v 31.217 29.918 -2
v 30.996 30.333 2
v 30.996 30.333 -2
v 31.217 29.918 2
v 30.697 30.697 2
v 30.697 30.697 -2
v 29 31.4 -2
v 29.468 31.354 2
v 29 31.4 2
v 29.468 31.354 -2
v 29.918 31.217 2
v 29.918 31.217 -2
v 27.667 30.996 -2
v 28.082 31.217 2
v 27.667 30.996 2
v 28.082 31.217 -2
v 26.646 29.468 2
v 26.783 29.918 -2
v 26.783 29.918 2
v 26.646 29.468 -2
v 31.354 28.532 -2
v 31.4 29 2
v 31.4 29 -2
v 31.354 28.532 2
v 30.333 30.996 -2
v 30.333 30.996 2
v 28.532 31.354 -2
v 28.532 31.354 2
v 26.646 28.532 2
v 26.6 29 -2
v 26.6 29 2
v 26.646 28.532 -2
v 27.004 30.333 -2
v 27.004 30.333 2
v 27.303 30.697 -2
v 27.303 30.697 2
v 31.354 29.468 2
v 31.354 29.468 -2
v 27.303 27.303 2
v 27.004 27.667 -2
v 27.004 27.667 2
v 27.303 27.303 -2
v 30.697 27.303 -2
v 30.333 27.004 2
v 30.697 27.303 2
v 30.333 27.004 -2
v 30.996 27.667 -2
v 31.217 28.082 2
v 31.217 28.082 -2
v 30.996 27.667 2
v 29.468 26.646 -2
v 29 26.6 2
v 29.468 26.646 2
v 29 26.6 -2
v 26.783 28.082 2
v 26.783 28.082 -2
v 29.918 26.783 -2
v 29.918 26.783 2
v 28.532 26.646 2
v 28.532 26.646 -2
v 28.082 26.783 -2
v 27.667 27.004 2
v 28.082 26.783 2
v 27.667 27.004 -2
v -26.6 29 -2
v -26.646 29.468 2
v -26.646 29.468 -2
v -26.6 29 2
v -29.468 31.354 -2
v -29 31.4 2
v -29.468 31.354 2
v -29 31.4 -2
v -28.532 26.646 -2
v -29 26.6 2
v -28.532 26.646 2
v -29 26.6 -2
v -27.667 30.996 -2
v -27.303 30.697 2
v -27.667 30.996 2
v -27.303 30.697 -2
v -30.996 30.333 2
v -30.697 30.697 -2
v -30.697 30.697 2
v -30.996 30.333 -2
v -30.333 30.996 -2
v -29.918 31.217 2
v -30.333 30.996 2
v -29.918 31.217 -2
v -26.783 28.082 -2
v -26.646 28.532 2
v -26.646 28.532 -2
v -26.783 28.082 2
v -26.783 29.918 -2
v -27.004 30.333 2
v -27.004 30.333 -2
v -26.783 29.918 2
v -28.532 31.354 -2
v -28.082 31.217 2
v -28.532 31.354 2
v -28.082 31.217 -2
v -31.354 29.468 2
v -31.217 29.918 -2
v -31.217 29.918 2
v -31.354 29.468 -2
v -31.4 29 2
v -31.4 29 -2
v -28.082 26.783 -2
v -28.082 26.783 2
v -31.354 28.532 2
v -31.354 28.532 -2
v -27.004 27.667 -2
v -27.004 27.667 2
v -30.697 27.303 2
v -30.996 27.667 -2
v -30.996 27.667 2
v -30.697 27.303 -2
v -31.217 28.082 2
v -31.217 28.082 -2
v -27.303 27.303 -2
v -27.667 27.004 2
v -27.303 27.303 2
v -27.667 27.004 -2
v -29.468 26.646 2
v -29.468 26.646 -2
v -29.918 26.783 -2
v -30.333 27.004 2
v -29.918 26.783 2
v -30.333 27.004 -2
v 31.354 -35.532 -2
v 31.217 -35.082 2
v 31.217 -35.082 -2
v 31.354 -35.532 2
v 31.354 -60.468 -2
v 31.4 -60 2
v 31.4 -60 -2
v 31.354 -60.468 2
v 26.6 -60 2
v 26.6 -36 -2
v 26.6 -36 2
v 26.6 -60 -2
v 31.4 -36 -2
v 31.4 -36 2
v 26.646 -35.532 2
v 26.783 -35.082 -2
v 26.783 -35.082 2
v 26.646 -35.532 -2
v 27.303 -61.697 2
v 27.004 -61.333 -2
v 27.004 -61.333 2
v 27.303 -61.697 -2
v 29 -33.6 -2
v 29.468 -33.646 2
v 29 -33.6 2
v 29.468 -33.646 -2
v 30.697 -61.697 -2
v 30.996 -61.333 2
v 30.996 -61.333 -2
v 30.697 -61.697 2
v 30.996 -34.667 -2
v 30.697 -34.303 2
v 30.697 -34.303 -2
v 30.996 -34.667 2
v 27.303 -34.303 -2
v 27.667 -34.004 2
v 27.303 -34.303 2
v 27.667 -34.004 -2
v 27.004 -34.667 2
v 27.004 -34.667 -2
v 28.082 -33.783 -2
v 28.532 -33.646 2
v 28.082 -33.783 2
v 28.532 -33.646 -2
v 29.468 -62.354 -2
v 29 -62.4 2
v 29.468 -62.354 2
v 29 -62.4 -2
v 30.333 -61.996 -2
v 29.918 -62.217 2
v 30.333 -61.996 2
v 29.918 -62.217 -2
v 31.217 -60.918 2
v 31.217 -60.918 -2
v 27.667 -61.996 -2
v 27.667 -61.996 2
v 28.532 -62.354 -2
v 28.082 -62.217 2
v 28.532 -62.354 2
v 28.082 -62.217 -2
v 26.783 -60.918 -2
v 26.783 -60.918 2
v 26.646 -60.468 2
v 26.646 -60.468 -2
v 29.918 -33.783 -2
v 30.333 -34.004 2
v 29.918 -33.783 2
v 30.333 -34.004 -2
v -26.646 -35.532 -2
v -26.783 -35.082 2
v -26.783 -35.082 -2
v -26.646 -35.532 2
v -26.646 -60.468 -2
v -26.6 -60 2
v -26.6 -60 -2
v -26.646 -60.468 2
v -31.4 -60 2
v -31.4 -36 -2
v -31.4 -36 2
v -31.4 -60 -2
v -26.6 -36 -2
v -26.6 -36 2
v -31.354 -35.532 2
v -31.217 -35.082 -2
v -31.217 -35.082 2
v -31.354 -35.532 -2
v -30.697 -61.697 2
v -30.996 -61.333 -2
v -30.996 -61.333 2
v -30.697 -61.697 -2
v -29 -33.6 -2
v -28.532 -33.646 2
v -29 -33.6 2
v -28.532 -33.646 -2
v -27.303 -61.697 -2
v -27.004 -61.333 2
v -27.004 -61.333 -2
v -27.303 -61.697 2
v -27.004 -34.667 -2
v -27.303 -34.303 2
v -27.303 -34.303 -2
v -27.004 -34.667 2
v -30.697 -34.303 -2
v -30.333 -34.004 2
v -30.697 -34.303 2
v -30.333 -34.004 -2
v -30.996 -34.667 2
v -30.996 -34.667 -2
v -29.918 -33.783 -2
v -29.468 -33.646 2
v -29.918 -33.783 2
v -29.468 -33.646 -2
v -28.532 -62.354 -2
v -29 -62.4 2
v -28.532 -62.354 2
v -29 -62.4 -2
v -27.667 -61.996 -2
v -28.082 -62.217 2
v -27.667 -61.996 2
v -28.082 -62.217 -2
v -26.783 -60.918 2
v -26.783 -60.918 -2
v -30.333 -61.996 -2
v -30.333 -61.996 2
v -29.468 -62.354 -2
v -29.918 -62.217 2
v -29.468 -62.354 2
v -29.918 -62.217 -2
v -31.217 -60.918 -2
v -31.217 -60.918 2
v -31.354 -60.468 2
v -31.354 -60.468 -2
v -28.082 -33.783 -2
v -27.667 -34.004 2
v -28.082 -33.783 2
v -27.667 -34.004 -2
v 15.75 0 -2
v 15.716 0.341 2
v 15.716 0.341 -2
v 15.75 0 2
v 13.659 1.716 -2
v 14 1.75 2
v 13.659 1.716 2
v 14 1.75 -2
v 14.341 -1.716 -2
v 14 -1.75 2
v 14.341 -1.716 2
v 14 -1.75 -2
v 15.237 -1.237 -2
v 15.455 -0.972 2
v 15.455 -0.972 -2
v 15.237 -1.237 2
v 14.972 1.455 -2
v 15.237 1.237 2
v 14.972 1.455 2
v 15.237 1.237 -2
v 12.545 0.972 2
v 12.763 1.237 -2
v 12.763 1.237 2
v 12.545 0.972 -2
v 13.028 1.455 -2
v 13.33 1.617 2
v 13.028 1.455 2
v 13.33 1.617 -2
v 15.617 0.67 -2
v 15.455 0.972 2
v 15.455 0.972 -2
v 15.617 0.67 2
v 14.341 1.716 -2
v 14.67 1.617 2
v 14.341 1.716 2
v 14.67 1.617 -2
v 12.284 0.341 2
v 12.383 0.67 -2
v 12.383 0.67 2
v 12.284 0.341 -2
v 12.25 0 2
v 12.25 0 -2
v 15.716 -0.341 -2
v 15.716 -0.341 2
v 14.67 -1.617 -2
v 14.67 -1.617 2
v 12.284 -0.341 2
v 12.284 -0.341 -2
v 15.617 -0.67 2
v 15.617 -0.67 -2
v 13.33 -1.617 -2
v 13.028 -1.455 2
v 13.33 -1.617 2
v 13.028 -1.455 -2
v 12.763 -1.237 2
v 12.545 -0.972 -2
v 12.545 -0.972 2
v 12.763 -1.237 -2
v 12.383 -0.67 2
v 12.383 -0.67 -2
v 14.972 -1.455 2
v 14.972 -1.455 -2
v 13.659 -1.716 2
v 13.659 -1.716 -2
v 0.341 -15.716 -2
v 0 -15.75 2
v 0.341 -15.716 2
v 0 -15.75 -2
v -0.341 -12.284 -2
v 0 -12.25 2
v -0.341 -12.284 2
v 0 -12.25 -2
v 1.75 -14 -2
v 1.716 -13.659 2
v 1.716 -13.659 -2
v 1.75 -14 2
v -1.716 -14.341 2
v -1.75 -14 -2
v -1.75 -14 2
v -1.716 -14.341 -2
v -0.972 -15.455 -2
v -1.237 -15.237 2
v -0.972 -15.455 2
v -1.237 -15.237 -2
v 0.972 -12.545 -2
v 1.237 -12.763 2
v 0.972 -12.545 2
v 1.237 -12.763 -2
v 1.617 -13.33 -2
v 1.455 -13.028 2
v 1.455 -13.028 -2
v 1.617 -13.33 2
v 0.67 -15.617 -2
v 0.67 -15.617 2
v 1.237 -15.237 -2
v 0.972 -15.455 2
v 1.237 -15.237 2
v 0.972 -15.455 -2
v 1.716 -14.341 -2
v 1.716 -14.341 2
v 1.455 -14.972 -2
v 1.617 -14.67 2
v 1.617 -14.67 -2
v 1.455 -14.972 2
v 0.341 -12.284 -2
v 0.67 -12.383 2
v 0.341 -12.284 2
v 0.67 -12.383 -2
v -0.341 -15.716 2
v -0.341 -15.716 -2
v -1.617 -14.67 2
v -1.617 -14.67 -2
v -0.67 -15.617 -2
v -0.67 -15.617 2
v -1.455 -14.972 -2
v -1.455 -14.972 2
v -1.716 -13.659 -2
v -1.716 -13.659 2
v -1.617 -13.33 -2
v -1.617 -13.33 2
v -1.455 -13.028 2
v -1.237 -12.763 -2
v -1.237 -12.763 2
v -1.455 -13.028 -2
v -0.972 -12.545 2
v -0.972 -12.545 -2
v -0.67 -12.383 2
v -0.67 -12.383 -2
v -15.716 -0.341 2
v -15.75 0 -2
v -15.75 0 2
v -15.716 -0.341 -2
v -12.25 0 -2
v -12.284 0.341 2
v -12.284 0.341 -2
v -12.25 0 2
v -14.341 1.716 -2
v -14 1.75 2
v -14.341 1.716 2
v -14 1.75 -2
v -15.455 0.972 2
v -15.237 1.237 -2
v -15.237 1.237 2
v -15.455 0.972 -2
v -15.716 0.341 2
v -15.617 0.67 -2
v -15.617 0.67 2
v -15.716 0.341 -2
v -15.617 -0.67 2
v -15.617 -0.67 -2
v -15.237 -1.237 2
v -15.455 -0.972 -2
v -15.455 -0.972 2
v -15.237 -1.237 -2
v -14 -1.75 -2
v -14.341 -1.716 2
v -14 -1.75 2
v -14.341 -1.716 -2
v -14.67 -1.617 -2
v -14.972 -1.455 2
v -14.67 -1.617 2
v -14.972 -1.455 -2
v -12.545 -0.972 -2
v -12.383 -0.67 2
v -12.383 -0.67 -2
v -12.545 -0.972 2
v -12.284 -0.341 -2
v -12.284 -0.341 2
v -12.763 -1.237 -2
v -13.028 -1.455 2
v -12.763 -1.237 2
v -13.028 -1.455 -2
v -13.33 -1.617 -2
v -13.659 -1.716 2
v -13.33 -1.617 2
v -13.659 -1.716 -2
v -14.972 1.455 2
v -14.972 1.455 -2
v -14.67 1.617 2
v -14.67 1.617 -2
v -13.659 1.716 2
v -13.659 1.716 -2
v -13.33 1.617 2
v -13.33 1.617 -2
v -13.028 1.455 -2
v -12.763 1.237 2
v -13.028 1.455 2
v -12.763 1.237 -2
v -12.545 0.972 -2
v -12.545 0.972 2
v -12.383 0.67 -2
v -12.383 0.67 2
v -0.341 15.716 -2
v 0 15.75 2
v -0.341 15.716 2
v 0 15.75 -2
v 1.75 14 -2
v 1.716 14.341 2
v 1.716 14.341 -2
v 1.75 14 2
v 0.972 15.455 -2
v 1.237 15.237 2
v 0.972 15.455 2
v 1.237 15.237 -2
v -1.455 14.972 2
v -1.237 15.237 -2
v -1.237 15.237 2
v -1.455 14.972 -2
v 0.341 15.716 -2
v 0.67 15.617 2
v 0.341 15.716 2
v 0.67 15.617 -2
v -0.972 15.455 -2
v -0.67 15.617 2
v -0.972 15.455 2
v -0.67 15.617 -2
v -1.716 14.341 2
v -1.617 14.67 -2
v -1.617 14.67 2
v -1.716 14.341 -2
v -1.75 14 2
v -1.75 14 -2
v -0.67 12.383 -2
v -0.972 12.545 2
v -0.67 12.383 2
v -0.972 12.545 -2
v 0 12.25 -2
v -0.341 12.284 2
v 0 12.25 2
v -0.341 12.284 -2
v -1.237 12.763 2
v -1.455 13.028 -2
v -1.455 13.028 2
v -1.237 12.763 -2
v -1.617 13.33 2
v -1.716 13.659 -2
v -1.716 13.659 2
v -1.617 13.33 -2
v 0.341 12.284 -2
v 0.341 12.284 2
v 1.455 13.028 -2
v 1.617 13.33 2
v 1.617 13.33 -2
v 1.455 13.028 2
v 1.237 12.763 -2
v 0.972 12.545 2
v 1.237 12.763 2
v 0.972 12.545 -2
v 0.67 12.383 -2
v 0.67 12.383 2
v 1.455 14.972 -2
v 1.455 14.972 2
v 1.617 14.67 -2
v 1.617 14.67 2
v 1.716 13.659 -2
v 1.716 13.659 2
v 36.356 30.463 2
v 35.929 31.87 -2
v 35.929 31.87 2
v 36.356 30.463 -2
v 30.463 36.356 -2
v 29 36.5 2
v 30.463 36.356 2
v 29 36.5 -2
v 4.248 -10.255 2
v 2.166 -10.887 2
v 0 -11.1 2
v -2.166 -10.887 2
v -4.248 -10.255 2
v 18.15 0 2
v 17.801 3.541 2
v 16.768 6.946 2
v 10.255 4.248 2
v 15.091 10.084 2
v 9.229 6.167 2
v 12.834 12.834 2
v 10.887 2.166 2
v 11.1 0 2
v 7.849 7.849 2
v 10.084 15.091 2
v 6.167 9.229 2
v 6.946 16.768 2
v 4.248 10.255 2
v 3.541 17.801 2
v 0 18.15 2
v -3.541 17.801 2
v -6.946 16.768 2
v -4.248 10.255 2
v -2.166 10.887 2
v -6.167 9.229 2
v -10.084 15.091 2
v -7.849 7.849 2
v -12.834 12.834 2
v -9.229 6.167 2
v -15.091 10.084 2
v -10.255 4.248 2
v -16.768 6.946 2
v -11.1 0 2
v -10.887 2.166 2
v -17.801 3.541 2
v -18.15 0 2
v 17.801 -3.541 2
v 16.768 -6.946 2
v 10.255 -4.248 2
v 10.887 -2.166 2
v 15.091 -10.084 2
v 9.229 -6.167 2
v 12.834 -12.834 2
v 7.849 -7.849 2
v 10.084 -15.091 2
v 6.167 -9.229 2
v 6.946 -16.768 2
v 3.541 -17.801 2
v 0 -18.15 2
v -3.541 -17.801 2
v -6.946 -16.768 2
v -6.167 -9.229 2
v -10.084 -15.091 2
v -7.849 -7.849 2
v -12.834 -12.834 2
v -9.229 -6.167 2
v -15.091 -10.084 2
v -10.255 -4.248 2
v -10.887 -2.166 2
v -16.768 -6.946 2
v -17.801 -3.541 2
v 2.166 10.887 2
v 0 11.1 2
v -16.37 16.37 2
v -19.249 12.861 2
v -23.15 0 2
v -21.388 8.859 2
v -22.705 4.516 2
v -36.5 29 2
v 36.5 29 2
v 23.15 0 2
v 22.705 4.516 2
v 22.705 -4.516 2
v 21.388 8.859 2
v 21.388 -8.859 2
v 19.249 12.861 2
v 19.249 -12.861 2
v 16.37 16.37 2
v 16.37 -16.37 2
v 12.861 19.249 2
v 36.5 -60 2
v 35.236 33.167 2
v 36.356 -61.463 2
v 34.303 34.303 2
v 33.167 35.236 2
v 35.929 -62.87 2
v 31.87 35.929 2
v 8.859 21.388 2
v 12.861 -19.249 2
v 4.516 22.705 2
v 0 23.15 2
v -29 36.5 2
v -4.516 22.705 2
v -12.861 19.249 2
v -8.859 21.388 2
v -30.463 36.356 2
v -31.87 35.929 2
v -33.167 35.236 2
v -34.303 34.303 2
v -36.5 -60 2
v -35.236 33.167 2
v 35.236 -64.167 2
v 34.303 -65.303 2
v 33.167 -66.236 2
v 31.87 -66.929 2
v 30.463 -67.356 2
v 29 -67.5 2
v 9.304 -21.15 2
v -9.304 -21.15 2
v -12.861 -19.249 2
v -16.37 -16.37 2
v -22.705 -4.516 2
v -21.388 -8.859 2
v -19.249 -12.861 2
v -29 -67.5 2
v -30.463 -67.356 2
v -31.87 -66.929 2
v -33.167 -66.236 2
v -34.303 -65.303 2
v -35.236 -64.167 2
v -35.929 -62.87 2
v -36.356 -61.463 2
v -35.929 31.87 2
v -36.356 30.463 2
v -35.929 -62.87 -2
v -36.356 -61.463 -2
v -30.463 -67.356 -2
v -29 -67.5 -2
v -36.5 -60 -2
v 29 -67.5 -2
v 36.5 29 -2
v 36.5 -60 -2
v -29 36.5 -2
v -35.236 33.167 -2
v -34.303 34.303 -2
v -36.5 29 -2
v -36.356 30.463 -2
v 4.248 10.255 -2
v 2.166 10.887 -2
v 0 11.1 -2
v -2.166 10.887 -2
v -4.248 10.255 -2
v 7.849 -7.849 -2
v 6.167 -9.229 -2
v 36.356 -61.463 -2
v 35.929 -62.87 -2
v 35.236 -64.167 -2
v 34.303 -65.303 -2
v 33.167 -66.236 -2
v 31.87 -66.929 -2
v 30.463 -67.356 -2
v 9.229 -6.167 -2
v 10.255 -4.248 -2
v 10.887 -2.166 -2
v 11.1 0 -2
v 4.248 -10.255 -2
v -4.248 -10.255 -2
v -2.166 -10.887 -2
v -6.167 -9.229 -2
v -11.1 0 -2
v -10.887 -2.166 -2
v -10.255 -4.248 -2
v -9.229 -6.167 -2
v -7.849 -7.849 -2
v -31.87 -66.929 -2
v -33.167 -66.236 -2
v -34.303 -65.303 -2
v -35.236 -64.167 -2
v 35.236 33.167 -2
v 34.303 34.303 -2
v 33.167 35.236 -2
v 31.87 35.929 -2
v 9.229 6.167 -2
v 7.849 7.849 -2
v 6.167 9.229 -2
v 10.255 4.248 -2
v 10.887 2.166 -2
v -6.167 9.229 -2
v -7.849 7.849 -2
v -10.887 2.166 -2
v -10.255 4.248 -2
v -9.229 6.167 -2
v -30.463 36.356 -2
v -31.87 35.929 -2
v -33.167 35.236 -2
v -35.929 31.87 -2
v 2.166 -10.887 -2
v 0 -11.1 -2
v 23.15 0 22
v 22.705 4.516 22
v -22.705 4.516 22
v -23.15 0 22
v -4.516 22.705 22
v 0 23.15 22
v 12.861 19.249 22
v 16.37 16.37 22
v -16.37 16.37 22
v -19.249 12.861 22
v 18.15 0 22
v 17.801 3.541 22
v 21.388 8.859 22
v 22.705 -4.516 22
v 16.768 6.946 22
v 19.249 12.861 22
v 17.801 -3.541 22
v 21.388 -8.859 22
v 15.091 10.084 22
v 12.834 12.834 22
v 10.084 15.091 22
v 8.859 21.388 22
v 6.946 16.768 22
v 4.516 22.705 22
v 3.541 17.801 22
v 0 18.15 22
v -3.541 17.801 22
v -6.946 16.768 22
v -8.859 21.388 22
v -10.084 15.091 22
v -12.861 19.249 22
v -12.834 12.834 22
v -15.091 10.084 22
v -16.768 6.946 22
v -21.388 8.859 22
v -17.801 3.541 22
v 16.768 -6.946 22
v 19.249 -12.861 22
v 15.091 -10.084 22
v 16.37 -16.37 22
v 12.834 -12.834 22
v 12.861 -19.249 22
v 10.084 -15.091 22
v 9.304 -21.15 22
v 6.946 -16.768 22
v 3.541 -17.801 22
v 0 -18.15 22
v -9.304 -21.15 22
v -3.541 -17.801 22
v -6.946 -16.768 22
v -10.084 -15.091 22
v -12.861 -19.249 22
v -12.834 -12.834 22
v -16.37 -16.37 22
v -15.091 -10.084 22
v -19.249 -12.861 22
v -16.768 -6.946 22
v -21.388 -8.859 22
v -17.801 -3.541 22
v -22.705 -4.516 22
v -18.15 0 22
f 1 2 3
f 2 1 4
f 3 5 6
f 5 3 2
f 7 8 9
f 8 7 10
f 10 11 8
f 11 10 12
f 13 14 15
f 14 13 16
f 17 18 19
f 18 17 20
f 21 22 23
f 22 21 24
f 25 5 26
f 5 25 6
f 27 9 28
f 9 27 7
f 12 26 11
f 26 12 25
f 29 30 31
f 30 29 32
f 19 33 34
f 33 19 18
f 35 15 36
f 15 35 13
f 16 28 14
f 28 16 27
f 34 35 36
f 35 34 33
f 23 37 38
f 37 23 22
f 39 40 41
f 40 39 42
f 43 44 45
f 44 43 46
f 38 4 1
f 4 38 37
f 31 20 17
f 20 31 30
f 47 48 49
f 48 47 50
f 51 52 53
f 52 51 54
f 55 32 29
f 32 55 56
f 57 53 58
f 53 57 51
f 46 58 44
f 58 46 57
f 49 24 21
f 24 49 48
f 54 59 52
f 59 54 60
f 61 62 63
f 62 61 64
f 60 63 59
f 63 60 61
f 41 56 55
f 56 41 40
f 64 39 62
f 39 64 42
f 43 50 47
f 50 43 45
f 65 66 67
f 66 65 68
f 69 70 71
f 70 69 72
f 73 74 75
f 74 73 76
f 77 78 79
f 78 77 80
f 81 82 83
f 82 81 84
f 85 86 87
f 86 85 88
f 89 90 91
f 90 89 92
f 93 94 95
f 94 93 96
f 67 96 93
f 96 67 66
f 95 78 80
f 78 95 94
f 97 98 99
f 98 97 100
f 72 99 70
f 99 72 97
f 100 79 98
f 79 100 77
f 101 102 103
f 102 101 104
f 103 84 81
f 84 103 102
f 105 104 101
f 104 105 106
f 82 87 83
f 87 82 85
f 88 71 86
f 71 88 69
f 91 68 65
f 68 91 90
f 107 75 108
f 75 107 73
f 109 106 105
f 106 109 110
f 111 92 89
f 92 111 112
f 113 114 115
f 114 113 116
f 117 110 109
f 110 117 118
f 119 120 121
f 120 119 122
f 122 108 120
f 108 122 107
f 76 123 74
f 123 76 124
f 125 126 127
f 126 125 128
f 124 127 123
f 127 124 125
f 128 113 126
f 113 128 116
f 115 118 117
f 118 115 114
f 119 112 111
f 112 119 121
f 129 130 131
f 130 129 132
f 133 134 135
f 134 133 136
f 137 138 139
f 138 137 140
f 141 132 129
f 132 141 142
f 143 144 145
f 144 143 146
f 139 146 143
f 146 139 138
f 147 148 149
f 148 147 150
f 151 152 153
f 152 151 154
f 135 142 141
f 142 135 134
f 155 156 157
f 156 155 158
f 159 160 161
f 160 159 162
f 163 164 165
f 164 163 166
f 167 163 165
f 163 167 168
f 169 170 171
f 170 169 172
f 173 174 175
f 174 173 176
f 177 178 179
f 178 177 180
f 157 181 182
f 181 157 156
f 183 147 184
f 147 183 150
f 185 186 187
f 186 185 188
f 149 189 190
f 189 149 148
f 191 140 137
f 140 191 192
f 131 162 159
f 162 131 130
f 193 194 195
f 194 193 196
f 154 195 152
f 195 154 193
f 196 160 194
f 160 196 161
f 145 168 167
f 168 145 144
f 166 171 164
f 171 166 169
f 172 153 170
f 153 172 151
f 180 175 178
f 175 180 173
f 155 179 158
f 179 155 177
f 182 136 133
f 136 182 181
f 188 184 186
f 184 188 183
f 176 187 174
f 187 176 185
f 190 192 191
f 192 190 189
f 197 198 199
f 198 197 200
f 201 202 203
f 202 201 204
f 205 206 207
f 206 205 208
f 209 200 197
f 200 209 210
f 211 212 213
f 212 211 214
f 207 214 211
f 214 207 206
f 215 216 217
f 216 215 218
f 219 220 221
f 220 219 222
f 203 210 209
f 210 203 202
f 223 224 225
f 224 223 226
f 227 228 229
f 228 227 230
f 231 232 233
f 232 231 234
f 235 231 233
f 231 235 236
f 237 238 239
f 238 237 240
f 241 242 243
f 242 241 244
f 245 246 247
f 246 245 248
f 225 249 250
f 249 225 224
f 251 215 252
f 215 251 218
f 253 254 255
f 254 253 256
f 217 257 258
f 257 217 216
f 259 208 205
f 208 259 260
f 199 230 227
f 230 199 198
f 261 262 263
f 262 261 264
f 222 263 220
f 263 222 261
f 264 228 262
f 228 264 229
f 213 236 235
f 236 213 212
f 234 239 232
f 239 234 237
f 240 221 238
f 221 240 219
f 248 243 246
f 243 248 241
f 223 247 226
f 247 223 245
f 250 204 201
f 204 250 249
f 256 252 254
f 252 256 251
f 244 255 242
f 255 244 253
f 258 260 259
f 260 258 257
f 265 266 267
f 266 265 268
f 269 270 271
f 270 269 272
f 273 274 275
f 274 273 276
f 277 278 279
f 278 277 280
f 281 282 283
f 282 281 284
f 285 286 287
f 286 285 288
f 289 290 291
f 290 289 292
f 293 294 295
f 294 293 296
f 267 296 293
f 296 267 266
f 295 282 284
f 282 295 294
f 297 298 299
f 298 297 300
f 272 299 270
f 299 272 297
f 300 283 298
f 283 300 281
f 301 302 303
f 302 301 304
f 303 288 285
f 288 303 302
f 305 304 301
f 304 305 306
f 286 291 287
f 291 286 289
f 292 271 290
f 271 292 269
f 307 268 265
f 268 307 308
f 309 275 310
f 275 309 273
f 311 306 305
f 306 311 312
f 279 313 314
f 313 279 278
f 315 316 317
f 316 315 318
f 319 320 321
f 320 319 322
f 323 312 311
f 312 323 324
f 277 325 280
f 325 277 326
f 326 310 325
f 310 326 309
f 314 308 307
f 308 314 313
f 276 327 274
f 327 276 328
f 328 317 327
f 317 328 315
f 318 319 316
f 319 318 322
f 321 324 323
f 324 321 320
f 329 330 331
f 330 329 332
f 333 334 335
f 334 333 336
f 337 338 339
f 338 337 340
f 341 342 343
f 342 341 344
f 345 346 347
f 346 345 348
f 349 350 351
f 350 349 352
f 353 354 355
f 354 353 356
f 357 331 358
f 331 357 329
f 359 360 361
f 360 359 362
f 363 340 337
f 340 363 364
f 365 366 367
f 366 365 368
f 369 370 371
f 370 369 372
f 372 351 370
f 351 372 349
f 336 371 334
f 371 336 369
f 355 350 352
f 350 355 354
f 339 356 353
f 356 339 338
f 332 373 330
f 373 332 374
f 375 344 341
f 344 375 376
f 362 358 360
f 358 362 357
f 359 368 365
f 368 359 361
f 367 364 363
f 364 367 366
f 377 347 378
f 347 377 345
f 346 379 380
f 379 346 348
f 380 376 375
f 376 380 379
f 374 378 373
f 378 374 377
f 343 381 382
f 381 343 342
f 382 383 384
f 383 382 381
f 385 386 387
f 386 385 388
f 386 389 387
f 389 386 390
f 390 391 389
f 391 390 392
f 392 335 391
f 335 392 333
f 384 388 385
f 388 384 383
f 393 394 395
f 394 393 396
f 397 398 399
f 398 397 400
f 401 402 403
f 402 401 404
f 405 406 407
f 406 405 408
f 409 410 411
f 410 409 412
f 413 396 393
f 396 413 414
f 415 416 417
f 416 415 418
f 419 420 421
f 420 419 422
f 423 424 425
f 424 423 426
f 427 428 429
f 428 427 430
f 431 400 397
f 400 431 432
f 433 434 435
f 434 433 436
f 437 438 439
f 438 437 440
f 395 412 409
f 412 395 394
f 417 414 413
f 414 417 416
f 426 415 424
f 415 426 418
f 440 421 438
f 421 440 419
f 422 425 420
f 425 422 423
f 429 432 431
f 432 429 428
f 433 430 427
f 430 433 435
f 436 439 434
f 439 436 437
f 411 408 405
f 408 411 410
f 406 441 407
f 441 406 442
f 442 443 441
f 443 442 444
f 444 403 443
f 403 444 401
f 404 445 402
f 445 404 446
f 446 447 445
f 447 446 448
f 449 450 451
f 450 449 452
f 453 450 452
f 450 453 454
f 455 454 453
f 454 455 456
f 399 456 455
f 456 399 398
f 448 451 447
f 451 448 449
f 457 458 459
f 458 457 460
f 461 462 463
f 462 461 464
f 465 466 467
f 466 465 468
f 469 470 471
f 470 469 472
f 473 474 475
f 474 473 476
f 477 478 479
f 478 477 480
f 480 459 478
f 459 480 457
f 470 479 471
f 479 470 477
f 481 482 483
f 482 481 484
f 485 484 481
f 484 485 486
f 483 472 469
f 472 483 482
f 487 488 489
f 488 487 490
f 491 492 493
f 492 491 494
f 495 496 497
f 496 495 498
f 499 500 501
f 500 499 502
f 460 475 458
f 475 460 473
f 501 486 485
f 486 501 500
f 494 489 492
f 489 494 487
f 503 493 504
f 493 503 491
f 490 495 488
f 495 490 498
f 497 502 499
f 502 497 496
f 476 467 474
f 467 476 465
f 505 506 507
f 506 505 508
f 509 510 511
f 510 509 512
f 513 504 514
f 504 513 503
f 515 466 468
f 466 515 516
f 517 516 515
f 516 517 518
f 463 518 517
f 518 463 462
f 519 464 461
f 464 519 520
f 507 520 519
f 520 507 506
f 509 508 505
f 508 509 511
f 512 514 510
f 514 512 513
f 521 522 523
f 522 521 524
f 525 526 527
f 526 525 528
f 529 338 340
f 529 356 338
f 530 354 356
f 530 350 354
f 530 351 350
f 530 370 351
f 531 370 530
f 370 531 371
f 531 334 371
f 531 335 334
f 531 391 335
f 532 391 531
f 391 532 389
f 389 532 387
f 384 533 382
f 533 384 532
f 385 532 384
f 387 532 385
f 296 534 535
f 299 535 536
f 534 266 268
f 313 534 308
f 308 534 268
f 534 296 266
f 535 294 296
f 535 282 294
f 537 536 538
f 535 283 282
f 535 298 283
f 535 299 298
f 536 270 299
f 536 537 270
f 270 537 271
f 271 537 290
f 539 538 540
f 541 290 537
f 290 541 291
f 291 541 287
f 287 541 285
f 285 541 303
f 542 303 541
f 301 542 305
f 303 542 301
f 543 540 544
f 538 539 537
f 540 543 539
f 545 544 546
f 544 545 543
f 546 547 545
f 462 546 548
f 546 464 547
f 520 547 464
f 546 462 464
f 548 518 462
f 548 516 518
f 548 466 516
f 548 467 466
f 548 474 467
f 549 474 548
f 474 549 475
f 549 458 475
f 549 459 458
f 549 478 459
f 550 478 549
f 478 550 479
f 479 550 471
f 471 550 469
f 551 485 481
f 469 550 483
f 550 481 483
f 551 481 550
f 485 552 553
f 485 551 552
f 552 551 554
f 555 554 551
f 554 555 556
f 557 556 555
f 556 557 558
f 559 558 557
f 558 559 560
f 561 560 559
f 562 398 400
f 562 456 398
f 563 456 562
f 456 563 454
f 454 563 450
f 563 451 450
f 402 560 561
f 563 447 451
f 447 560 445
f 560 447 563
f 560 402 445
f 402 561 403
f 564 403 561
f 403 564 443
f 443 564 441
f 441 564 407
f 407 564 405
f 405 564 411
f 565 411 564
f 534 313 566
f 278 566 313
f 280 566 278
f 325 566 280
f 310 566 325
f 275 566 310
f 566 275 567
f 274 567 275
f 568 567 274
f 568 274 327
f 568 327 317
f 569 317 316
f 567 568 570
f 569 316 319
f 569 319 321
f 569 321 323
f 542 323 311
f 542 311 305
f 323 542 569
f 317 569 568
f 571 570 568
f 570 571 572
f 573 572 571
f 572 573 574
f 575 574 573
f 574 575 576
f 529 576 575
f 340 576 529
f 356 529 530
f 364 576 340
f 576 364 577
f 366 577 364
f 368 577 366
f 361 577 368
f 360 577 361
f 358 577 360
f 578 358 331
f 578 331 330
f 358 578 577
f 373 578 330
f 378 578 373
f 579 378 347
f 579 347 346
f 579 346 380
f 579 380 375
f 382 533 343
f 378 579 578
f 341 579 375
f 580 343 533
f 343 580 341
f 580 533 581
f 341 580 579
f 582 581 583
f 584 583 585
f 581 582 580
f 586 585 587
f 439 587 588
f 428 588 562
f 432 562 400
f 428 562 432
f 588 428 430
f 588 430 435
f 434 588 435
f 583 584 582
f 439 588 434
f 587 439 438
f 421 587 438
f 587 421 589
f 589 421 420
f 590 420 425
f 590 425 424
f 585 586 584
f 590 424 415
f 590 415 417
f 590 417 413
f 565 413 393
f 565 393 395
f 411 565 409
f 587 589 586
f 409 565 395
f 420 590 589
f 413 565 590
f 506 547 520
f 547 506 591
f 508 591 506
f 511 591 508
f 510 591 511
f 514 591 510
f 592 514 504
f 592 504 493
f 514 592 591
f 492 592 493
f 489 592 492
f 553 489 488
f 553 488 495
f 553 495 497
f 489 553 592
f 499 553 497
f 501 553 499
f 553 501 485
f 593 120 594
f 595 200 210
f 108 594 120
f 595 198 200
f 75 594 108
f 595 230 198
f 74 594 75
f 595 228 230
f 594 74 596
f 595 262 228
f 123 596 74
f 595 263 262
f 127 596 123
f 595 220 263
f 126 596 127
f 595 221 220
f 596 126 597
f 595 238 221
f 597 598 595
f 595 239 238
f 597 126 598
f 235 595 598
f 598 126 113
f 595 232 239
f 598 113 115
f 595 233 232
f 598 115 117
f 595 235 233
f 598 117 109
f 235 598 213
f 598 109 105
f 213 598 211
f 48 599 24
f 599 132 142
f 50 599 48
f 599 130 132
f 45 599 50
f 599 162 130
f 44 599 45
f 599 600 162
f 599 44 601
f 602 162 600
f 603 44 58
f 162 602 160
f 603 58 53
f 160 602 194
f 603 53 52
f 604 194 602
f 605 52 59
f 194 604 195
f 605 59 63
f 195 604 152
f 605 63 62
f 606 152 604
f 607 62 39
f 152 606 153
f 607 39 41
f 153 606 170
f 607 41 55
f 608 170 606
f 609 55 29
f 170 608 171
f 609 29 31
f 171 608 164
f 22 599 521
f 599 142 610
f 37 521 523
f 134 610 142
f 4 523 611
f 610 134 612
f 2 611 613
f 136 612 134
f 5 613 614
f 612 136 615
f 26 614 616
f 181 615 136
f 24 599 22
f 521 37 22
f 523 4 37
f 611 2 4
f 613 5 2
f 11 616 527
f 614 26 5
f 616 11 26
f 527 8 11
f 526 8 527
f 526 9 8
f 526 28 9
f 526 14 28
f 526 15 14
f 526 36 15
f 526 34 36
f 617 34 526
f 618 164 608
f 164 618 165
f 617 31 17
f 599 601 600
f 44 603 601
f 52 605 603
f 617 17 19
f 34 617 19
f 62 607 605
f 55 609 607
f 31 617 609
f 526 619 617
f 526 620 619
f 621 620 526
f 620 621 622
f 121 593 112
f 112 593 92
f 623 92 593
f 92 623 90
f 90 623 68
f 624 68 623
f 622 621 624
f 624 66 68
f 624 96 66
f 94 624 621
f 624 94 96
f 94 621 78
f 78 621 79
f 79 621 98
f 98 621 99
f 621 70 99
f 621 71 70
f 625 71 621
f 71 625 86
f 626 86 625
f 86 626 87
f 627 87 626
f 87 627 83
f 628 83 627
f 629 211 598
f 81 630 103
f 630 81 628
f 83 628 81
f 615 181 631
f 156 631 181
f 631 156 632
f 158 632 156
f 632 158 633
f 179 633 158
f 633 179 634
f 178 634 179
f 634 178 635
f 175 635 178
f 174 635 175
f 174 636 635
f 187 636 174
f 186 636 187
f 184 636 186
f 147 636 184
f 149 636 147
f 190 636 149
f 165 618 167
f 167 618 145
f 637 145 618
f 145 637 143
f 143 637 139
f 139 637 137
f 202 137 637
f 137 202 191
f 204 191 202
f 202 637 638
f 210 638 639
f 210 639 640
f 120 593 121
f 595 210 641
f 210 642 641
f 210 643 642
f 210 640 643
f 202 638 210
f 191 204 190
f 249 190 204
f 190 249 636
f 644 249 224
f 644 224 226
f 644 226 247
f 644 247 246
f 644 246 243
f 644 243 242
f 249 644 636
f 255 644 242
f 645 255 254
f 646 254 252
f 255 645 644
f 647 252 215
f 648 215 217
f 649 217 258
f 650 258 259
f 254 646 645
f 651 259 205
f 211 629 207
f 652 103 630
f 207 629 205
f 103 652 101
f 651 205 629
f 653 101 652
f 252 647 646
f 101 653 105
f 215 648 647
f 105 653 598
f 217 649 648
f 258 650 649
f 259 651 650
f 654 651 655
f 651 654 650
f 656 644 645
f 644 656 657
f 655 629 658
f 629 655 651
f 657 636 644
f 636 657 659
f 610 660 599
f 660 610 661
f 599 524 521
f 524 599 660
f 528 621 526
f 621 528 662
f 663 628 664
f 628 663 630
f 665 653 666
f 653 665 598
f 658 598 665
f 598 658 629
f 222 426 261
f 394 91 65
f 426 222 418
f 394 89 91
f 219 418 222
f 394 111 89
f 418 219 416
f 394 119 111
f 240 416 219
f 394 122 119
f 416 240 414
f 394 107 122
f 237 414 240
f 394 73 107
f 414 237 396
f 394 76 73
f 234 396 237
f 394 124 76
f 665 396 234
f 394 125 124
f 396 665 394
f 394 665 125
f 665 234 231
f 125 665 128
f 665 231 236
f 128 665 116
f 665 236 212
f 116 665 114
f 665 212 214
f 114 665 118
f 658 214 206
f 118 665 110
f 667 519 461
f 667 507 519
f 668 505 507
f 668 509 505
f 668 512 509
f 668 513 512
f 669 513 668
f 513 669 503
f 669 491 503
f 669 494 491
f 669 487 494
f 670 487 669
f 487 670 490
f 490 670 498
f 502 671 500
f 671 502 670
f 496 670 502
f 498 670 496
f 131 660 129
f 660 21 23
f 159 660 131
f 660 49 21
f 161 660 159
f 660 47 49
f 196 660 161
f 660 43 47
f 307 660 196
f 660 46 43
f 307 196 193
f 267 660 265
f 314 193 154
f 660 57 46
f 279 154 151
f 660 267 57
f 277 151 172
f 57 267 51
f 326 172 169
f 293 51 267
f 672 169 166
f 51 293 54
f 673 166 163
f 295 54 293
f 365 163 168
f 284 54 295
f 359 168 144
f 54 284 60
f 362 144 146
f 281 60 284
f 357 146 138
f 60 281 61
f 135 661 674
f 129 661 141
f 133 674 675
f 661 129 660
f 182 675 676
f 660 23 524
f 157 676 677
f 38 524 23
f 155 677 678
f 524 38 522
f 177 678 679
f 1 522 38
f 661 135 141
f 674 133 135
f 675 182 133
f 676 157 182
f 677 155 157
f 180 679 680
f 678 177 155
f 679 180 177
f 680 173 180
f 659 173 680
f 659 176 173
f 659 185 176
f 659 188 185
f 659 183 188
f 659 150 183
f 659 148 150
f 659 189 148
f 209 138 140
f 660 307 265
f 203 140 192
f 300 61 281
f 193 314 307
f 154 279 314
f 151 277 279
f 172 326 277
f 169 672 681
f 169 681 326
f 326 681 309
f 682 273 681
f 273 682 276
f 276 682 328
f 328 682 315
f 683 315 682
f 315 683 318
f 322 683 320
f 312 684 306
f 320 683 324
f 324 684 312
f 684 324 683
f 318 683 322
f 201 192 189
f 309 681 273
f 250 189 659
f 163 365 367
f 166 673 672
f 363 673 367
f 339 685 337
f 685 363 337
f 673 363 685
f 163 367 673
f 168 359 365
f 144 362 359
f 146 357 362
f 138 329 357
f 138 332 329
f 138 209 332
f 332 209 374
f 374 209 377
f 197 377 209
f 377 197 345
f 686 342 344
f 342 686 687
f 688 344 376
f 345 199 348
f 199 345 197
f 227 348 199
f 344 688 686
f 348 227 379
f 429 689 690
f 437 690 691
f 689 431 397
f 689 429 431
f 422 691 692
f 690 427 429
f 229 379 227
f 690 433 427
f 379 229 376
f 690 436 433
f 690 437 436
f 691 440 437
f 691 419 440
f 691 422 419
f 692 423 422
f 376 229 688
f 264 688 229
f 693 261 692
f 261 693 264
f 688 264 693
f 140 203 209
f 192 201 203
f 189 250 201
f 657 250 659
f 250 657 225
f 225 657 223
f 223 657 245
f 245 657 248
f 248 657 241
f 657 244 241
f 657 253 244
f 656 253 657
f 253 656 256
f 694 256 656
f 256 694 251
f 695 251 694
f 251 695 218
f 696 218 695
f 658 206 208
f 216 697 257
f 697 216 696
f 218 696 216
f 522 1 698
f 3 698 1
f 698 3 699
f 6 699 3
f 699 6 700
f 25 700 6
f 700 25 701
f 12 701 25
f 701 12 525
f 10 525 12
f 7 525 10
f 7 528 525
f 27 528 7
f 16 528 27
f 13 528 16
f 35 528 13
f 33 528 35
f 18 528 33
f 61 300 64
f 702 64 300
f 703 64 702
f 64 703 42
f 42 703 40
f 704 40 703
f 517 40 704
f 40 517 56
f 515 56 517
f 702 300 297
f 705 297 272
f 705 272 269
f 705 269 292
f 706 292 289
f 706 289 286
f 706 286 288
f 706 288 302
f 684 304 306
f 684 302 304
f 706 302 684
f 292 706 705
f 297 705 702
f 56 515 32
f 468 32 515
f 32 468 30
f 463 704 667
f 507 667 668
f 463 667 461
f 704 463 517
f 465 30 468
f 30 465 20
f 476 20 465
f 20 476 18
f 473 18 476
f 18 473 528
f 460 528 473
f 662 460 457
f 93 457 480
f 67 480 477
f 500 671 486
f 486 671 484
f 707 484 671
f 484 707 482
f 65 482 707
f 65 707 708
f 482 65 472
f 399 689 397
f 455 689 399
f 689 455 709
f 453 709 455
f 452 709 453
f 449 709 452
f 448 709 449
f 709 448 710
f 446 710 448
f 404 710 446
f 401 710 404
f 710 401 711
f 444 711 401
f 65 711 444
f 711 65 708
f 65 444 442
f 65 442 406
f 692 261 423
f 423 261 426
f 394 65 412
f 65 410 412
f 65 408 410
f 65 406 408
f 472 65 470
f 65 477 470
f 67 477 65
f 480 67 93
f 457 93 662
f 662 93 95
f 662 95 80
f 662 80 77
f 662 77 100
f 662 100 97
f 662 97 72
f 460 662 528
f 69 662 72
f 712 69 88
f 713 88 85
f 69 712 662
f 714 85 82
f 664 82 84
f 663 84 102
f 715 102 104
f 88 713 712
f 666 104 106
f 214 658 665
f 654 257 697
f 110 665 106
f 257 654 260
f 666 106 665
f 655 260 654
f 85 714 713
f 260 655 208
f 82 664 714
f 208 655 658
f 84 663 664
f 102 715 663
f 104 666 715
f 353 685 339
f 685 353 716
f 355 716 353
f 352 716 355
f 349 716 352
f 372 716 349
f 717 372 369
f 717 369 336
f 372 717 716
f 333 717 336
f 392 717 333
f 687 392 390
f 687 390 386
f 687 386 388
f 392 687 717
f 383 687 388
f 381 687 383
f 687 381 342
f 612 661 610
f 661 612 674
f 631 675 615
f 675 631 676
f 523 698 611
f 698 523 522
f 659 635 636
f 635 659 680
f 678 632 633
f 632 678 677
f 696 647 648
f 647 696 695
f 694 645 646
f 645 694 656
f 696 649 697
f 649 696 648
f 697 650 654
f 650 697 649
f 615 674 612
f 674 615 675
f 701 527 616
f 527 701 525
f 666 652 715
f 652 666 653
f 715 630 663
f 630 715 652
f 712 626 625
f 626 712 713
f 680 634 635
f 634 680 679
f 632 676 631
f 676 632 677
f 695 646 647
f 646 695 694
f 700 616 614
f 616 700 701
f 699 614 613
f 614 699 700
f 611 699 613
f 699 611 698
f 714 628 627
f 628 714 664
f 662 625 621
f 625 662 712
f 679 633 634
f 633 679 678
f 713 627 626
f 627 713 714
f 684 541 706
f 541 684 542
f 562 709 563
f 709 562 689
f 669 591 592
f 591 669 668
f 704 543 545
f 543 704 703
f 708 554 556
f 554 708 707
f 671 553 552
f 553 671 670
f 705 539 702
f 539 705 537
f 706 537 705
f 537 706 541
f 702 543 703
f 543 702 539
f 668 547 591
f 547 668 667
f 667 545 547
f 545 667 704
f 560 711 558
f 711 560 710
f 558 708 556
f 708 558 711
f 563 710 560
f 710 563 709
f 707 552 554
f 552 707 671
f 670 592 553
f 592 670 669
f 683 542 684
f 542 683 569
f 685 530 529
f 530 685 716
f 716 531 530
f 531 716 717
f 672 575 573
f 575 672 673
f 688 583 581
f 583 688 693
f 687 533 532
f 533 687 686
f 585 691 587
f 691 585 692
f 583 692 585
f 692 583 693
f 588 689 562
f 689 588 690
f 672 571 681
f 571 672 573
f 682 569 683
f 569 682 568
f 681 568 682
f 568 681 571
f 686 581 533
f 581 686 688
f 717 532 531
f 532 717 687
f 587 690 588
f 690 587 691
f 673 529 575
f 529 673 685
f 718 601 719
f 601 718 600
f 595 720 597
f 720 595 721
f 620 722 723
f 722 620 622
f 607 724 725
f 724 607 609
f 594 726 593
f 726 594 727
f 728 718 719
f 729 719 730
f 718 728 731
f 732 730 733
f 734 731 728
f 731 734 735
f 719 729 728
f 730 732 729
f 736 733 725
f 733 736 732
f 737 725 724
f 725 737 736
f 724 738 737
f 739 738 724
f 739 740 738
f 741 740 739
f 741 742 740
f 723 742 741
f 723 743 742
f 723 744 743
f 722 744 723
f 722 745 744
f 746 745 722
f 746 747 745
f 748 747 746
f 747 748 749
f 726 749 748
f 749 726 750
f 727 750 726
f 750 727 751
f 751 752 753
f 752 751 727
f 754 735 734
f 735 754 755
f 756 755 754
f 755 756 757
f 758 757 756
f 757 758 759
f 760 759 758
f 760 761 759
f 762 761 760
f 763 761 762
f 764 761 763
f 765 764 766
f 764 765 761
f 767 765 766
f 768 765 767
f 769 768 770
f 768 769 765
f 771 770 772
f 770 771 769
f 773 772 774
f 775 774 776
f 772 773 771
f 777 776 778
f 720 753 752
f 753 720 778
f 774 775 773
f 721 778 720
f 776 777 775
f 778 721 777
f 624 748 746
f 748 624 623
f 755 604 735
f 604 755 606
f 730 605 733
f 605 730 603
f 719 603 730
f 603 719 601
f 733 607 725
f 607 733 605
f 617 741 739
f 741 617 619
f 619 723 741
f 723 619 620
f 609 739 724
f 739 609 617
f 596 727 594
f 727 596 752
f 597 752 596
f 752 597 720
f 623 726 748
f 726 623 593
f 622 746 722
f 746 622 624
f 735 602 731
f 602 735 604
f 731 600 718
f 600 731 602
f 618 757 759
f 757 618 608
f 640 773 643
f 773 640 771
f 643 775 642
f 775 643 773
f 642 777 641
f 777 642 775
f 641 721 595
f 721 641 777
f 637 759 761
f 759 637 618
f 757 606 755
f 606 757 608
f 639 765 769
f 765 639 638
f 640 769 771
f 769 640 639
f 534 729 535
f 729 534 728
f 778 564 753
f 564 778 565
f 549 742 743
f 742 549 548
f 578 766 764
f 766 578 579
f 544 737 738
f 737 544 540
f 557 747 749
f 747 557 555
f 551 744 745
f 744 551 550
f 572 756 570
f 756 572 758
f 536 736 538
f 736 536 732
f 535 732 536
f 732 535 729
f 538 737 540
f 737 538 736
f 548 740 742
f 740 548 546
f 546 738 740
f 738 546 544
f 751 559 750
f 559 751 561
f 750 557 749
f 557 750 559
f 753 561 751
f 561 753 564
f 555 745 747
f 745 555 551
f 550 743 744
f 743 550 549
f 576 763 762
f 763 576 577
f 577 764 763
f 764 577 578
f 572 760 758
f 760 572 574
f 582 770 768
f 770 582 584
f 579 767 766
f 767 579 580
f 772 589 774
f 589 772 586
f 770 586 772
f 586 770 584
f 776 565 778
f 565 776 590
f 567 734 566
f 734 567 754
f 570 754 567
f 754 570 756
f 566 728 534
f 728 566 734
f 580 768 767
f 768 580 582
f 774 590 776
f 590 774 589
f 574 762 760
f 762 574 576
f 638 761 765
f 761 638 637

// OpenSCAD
// file: ../shared/Tooth Profile.scad
//Simple Trapezoid Tooth Profile - used by Belt - don't print
use <Chamfer-Fillet-Machine.scad>
pressure_angle = 14.5;//degrees
tooth_pitch = 16;//mm
half_tooth_pitch = tooth_pitch/2;
root_fillet_radius = 2;//mm
tooth_height = 5;//mm

function tooth_points(
    pressure_angle=14.5,
    tooth_pitch=16,
    root_fillet_radius=2,
    tooth_height=12,
    descent=0.1) = 
    let(
        //half pitch
        half_tooth_pitch = tooth_pitch/2,
        
        //find the tangent contact points
        x_fact = cos(pressure_angle),
        y_fact = sin(pressure_angle),
        
        //find the x and y distance from circle centre
        dx_radial = x_fact * root_fillet_radius,
        dy_radial = y_fact * root_fillet_radius,

        //find the tangent coordinates
        x_tang = -half_tooth_pitch + dx_radial,
        y_tang = root_fillet_radius - dy_radial,

        //find gradient of the radial
        radial_gradient = -dy_radial / dx_radial,

        //find gradient of tangent
        tangent_gradient = -1 / radial_gradient,

        //calculate intersection point on baseline (y = 0)
        x_base_disp = y_tang / tangent_gradient,
        x_base = x_tang - x_base_disp,

        //calculate intersection point on top (y = height)
        y_top_disp = (tooth_height - y_tang),
        x_top_disp = y_top_disp / tangent_gradient,
        x_top = x_tang + x_top_disp,
        pts = [
            //[0, -descent, 0],
            [-(half_tooth_pitch + root_fillet_radius), -descent, 0],
            [-(half_tooth_pitch + root_fillet_radius), 0, 0],
            [x_base, 0, root_fillet_radius],
            [x_top, tooth_height, 1],
            [-x_top, tooth_height, 1],
            [-x_base, 0, root_fillet_radius],
            [half_tooth_pitch + root_fillet_radius, 0, 0],
            [half_tooth_pitch + root_fillet_radius, -descent, 0],
            [-(half_tooth_pitch + root_fillet_radius), -descent, 0]
            //[0, -descent, 0]
        ]
    ) pts;

module tooth_pitch_debug(
    pressure_angle=14.5,
    tooth_pitch=16,
    root_fillet_radius=2,
    tooth_height=12) {

    //draw 2 circles to represent the root fillets, and space them apart by the pitch
    translate([-tooth_pitch/2, root_fillet_radius]) circle(root_fillet_radius, $fn=32);
    translate([tooth_pitch/2, root_fillet_radius]) circle(root_fillet_radius, $fn=32);

    //simulate a zero degree pressure angle
    %translate([0, tooth_height/2]) square([tooth_pitch - (2 * root_fillet_radius), tooth_height], center=true);

    //find the tangent contact points
    x_fact = cos(pressure_angle);
    y_fact = sin(pressure_angle);
    echo("x_fact: ", x_fact, "y_fact: ", y_fact);
    //find the x and y distance from circle centre
    dx_radial = x_fact * root_fillet_radius;
    dy_radial = y_fact * root_fillet_radius;
    echo("dx_radial: ", dx_radial, "dy_radial: ", dy_radial);

    x_tang = -half_tooth_pitch + dx_radial;
    y_tang = root_fillet_radius - dy_radial;
    echo("x_tang: ", x_tang, "y_tang: ", y_tang);

    //annotate tangent contact points
    color("black", 0.25) translate([x_tang, y_tang]) circle(0.5, $fn=32);
    color("black", 0.25) translate([-x_tang, y_tang]) circle(0.5, $fn=32);

    //annotate radial
    color("blue") translate([-half_tooth_pitch, root_fillet_radius]) vector_arrow([dx_radial, -dy_radial]);

    //find gradient of the radial
    radial_gradient = -dy_radial / dx_radial;
    echo("radial_gradient: ", radial_gradient);

    //find gradient of tangent
    tangent_gradient = -1 / radial_gradient;
    echo("tangent_gradient: ", tangent_gradient);

    //calculate intersection point on baseline (y = 0)
    x_base_disp = y_tang / tangent_gradient;
    x_base = x_tang - x_base_disp;
    echo("x_base_disp: ", x_base_disp, "x_base: ", x_base);

    //annotate triangle
    color("yellow", 0.25) polygon([
        [x_tang, y_tang],
        [x_tang, 0],
        [x_base, 0]
    ]);

    //annotate base contact points
    color("black", 0.25) translate([x_base, 0]) circle(0.5, $fn=32);

    //create tangent line vector
    Vtang = [dy_radial, dx_radial];
    Vtangex = extend_vect(Vtang, 20);
    echo("Vtang: ", Vtang);

    //annotate tangents
    color("red") translate([x_base, 0]) vector_line(Vtangex);

    //label pressure angle
    color("black") translate([-half_tooth_pitch, tooth_height + 1]) text(str("Pressure Angle: ", pressure_angle, " degrees"), size=0.5);

    //calculate intersection point on top (y = height)
    y_top_disp = (tooth_height - y_tang);
    x_top_disp = y_top_disp / tangent_gradient;
    echo("y_top_disp: ", y_top_disp, "x_top_disp: ", x_top_disp);
    x_top = x_tang + x_top_disp;
    echo("x_top: ", x_top);

    //annotate triangle
    color("yellow", 0.35) polygon([
        [x_tang, y_tang],
        [x_tang, tooth_height],
        [x_top, tooth_height]
    ]);

    //annotate top contact points
    color("black", 0.25) translate([x_top, tooth_height]) circle(0.5, $fn=32);
}
*tooth_pitch_debug();
// file: ../shared/Constants.scad
/*
    Constants.scad contains all the global constants
*/
use <Tooth Profile.scad>

//idler hub
idle_bearing_od = 16;//mm
idle_bearing_fit_dia = idle_bearing_od * 1.03;//push-in fit for bearing
idle_bearing_thickness = 5.25;//push-in fit
hub_thickness = 15;
hub_dia = 24;
idle_shaft_hole_dia = 6.5;//clearance for 6mm shaft
scraper_fix_hole_dia = 4.5;//mm
idler_width = 25;//mm
idler_dia = 50;//mm
idler_spacing = 0.5;//mm
radial_spacing = 5;//mm
tube_insertion = 25;//mm
tube_outer_dim = 10;//10mm square tube
tube_dim = sqrt(tube_outer_dim^2 + tube_outer_dim^2) * 1.04;
echo("tube_outer_dim:", tube_outer_dim, "tube_dim:", tube_dim);

//idler wheel
idle_wheel_thickness = 25;
idle_wheel_dia = 50;
idle_shaft_dia = 6.25;//mm
tooth_space_thickness = 11;//mm
tooth_space_dia = 35;//mm
runner_thickness = (idle_wheel_thickness - tooth_space_thickness)/2;
edge_radius = 1;
dee_shaft_offset = 1;
spigot_scale_factor = 1.0;//grow spigot hole if necessary for a tight fit

//idler axle
idle_rod_dia = 5.92;//mm tight fit for bearing
idle_rod_length = 25 + (2 * 0.5) + (2 * 15) + (2 * 2);//mm idler width + 2 spacers + 2 hubs + 2 washers
echo("idle_rod_length", idle_rod_length);
idle_rod_cap_length = 2;//mm
idle_rod_clip_width = 1;//mm
idle_rod_clip_dia = 4.5;//mm

//knurled wheel and locknut
//knob parameters
KNOB_DIAM=25;
//screw parameters
SCREWHEAD_FACETOFACE=0;
SCREWHEAD_DEPTH=12;
THRU_HOLE_DIAM=9.5;
//grippy cutouts parameters
NUM_GRIP_CUTOUTS=20;
GRIP_CUTOUT_DIAM=4;
CUTOUT_RADIUS_ADJ=1;
KNURLED_WHEEL_HEIGHT=6;
KNURLED_WHEEL_NUM_TURNS = 3.5;
LOCKNUT_HEIGHT=3;
LOCKNUT_NUM_TURNS = 1.375;

//motor plate
gearbox_collar_hole_dia = 22.2;//mm
motor_plate_thickness = 4;//mm
motor_plate_corner_dia = 15;//mm
plan_motor_dia = 36.3;//mm
plan_shoulder_base_thickness = 3;// mm
plan_shoulder_thickness = 5;// mm
plan_shoulder_height = 20;// mm

//planetary motor bracket
pmb_motor_dia = 36;//mm 35.5 plus clearance
pmb_base_thickness = 3;//mm
pmb_foot_thickness = 5;//mm
pmb_width = 10;//mm
pmb_thickness = 4;//mm
pmb_chamfer_radius = 1;//mm
pmb_fix_hole_dia = 4.5;//mm

//bearing backplate
drive_bearing_bush_dia = 24;//mm
drive_bearing_od = 16;//mm
drive_bearing_fit_dia = drive_bearing_od * 1.02;//push fit for bearing
drive_bearing_recess = 6;//mm 

//drive sprocket
sprocket_spacing = 0.5;//mm
tooth_height = 5;//mm 4 + 1 to sink into cylinder

//tube clamp
clamp_width = 10;//mm
clamp_effect = 0.75;//mm
clamp_int_dia = 0.5;//mm
clamp_ext_dia = 2.5;//mm
clamp_fix_hole_dia = 4.8;//mm
clamp_washer_dia = 13;// for 12.5mm washer
clamp_washer_thickness = 1;//mm

//drive spindle
plan_motor_drive_shaft_dia = 8;//mm
spindle_outer_dia = 20;//mm fn=6 for hex
spindle_length = 25;//mm
spindle_shoulder_dia = 30;//mm
spindle_shoulder_width = 10;//mm
drive_sprocket_shaft_hole_dia = 8.32;//for 8mm shaft
spindle_dee_shaft_offset = 1;//mm
spindle_dee_shaft_dia = plan_motor_drive_shaft_dia * 1.0175;//mm interference fit
spindle_drive_shaft_length = 25;//mm shaft is 17.5 only 14mm of which is D'eed
spindle_bearing_shaft_dia = 9.3;//space for M8 thread
spindle_thread_num_turns = 9;
spindle_thread_x_factor = 1.04;
spindle_thread_y_factor = 1.04;
spindle_thread_z_factor = 1.0;

//drive sprocket shaft
drive_sprocket_shaft_num_turns = 14;
bearing_section_length = 10;//mm
back_bearing_stub_dia = 7.95;//mm for 8mm hole in bearing

//drive sprocket cog
tth_num_teeth = 9;
tth_pitch_angle = 360 / tth_num_teeth;
drive_sprocket_dia = 50;
tooth_depression = 1.1;//to smooth base fillets
sprock_tooth_x_scale = 0.8;//put space between teeth
sprock_tooth_y_scale = 1.05;//
sprock_thickness = 11;//mm for a 7|11|7 sandwich
tth_sprock_press_angle = 5;
tth_tooth_pitch = 8;
tth_root_fillet_radius = 1;
tth_tooth_height = 5;
sprock_tooth_profile_pts = tooth_points(tth_sprock_press_angle, tth_tooth_pitch, tth_root_fillet_radius, tth_tooth_height);

//drive plain cog
plain_cog_dia = 50;
plain_cog_thickness = 7;
plain_cog_rim_thickness = 3;//mm

//just for assembly
wheelbase = 200;//mm horizontal distance between idle wheel centres
track_triangle_height = 60;//mm vertical distance between drive motor and tube centres
// main file
include <../shared/Constants.scad>

module plan_motor_plate() {
    /*
        generates a plate that accomodates any combination of cartesian/polar holes/slots
        the common origin aligns with the motor shaft
        suitable for transverse planetary motors
    */

    cart_holes = [
        // x, y, d
        [29, 29, 4.8],     // motor cover mount hole
        [-29, 29, 4.8],    // motor cover mount hole
    ];
    
    cart_slots = [
        // x1, y1, x2, y2, d
        [29, -36, 29, -60, 4.8], //slot pitch = 58
        [-29, -36, -29, -60, 4.8]
    ];
    polar_holes = [
        //r, theta, d
        [14, 0, 3.5],   //planetary motor mount
        [14, 90, 3.5],  //planetary motor mount
        [14, 180, 3.5], //planetary motor mount
        [14, 270, 3.5]  //planetary motor mount
    ];

    difference() {
        //plate corners
        hull() {
            //cartesian holes
            for (i=[0:1:len(cart_holes)-1]) {
                translate([cart_holes[i][0], cart_holes[i][1], 0]) cylinder(h=motor_plate_thickness, d=motor_plate_corner_dia, $fn=32, center=true);
            }
            //cartesian slots
            for (i=[0:1:len(cart_slots)-1]) {
                translate([cart_slots[i][0], cart_slots[i][1], 0]) cylinder(h=motor_plate_thickness, d=motor_plate_corner_dia, $fn=32, center=true);
                translate([cart_slots[i][2], cart_slots[i][3], 0]) cylinder(h=motor_plate_thickness, d=motor_plate_corner_dia, $fn=32, center=true);
            }
            //polar holes
            for (i=[0:1:len(polar_holes)-1]) {
                rotate([0, 0, -polar_holes[i][1]]) translate([polar_holes[i][0], 0, 0]) cylinder(h=motor_plate_thickness, d=motor_plate_corner_dia, $fn=32, center=true);
            }            
        }
        //gearbox collar at origin
        cylinder(h=motor_plate_thickness * 2, d=gearbox_collar_hole_dia, $fn=32, center=true);
        
        //cartesian holes
        for (i=[0:1:len(cart_holes)-1]) {
            translate([cart_holes[i][0], cart_holes[i][1], 0]) cylinder(h=motor_plate_thickness * 16, d=cart_holes[i][2], $fn=32, center=true);
        }
        
        //cartesian slots
        for (i=[0:1:len(cart_slots)-1]) {
            hull() {
                translate([cart_slots[i][0], cart_slots[i][1], 0]) cylinder(h=motor_plate_thickness * 2, d=cart_slots[i][4], $fn=32, center=true);
                translate([cart_slots[i][2], cart_slots[i][3], 0]) cylinder(h=motor_plate_thickness * 2, d=cart_slots[i][4], $fn=32, center=true);
            }
        }
        //polar holes
        for (i=[0:1:len(polar_holes)-1]) {
            rotate([0, 0, -polar_holes[i][1]]) translate([polar_holes[i][0], 0, 0]) cylinder(h=motor_plate_thickness * 2, d=polar_holes[i][2], $fn=32, center=true);
        }
    }
    //shoulder
    translate([0, 0, (plan_shoulder_height + motor_plate_thickness)/2]) difference() {
        cylinder(h=plan_shoulder_height, d=plan_motor_dia + (plan_shoulder_thickness * 2), center=true, $fn=32);
        cylinder(h=plan_shoulder_height*2, d=plan_motor_dia, center=true, $fn=32);
        //baseplate clearance
        translate([0, -((plan_motor_dia/2) + plan_shoulder_thickness + plan_shoulder_base_thickness), 0]) cube([100, 10, plan_shoulder_height*2], center=true);        
    }
}

plan_motor_plate();
